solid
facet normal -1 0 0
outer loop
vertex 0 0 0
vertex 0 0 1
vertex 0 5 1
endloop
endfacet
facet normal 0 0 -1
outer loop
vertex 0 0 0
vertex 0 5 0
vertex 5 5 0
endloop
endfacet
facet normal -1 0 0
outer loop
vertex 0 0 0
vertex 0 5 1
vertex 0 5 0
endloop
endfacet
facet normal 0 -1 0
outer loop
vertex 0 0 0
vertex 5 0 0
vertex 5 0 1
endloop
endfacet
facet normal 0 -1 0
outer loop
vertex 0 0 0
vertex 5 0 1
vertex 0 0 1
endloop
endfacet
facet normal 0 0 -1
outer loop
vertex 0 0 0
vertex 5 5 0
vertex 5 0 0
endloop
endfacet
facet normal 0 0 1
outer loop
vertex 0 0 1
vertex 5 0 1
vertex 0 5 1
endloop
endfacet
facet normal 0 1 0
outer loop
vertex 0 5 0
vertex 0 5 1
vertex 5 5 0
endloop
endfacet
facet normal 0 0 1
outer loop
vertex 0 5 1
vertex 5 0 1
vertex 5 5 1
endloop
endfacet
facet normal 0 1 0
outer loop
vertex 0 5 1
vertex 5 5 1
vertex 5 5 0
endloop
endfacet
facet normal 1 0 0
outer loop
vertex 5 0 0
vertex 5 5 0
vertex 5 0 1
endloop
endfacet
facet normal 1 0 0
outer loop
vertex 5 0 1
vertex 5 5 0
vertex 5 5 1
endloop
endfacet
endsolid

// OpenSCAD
/* Warning, this is a very basic generator with a lot of approximation 
input data : [VQFN, PNX, 5x5x1.0mm, 40, , A, C04-00236A]
generated by com.zoubworld.electronics.cad.model3d.Basic
Date : Sun Feb 15 10:50:48 CET 2026
*/

//body
color("black")
translate([0,0,0])
cube([5.0,5.0,1.0], center=false);
